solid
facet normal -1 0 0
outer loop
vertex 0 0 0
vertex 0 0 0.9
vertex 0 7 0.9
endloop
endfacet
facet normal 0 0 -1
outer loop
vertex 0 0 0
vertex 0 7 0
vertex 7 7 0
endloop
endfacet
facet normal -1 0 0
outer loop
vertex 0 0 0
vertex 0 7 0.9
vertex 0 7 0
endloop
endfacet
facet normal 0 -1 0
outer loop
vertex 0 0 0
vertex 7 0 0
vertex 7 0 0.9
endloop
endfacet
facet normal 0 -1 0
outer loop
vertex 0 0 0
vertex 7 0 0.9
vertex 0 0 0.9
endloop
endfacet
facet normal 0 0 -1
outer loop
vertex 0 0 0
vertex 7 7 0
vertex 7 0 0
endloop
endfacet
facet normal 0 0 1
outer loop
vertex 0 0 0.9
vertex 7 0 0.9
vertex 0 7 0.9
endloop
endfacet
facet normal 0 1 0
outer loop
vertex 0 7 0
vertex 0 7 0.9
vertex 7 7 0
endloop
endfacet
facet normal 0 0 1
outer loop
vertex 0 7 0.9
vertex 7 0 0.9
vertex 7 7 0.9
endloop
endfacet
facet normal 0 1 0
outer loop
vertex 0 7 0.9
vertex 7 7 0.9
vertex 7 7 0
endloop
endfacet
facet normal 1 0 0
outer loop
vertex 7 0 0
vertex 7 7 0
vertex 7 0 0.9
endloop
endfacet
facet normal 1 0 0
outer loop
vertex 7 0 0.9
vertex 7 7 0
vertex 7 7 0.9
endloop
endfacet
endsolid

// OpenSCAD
/* Warning, this is a very basic generator with a lot of approximation 
input data : [VQFN, SNB, 7x7x0.9mm, 32, , A, C04-21415A]
generated by com.zoubworld.electronics.cad.model3d.Basic
Date : Sun Feb 15 10:50:49 CET 2026
*/

//body
color("black")
translate([0,0,0])
cube([7.0,7.0,0.9], center=false);
